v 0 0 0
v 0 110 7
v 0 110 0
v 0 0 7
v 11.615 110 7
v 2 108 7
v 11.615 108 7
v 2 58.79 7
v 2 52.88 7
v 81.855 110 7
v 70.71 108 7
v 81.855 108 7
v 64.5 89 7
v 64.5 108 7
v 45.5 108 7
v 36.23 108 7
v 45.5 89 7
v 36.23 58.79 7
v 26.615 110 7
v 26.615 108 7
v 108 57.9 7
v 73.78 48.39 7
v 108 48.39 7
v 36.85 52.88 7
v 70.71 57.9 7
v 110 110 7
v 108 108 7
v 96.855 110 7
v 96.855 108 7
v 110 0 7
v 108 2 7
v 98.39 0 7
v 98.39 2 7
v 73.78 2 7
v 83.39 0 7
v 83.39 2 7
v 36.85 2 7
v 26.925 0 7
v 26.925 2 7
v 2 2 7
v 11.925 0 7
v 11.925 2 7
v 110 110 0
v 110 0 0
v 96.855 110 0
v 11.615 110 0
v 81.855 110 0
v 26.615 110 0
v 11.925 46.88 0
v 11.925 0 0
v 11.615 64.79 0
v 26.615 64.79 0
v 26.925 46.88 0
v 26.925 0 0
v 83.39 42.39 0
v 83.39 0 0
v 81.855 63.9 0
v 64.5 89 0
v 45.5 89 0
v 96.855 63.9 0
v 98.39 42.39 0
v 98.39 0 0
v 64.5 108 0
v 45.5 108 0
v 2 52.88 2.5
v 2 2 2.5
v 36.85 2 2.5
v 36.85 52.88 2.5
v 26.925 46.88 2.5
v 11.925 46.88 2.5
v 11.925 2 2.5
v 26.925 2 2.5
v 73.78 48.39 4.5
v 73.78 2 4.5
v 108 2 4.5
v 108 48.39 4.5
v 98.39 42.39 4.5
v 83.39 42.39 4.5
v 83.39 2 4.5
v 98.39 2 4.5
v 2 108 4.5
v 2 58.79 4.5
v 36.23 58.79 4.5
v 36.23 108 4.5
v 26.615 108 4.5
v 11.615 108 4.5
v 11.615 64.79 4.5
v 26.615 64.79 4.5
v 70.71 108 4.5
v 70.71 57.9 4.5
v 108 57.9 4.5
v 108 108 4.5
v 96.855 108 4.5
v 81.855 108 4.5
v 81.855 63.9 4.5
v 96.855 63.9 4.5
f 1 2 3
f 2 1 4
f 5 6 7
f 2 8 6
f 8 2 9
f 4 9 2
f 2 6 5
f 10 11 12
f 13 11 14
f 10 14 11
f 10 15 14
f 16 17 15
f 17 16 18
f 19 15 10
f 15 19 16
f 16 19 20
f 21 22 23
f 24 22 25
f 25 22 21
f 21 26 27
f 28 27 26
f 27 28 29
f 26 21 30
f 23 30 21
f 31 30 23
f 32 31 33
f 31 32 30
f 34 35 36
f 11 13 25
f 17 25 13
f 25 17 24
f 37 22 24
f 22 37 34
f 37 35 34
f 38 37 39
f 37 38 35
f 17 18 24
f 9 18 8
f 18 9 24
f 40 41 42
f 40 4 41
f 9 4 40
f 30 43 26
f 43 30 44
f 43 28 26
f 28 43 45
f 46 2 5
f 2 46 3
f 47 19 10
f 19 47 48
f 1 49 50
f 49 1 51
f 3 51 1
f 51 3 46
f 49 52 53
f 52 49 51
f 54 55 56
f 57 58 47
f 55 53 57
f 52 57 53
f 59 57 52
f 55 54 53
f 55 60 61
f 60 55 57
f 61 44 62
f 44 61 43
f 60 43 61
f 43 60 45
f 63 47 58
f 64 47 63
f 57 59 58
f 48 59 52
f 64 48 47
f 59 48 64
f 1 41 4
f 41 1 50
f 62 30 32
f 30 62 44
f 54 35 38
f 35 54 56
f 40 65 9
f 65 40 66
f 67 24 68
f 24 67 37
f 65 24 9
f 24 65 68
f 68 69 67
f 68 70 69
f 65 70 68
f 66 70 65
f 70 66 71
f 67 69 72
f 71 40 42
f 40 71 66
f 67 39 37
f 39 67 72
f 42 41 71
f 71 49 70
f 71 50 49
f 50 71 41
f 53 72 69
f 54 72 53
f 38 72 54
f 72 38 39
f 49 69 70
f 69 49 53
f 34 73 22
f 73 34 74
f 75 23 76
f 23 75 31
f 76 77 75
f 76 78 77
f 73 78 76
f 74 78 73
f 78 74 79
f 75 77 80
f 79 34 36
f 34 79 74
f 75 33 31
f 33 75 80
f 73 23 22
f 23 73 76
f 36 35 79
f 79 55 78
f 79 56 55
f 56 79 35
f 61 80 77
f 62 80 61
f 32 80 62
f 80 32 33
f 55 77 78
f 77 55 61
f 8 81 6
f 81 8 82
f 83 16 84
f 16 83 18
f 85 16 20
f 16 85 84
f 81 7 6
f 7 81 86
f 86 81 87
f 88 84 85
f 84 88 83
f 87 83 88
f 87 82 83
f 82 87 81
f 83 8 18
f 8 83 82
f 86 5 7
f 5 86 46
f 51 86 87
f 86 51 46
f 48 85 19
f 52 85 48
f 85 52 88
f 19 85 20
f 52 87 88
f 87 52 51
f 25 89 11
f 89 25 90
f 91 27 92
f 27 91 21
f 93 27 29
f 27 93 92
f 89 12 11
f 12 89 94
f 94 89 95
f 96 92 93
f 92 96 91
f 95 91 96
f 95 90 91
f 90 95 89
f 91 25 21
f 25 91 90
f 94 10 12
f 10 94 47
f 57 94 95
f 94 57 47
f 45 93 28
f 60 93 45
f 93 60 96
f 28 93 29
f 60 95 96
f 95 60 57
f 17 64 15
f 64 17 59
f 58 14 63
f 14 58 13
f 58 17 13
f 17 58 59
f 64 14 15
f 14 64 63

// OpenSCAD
length = 110;
width = 110;
height = 7;

//Based on magnet size:
magnetBaseInnerDiameter = 19;
magnetHeight = 4.0;

//        inox bodyguards (2) 49.88 x 33.85
//		merciless overseer 45.39 x 33.22
//		the sightless eye 48.21 x 33.23
//		the gloom 49.10 x 36.29

token1Width = 49.88 + 1;
token1Length = 33.85 + 1;
token1Height = 4 + .5;
token1SquareLipWidthRemainder = token1Length - 15;
token1SquareLipLengthRemainder = 4;

token3Width = 45.39 + 1;
token3Length = 33.22 + 1;
token3Height = 2 + .5;
token3SquareLipWidthRemainder = token3Length - 15;
token3SquareLipLengthRemainder = 4;

token4Width = 48.21 + 1;
token4Length = 33.23 + 1;
token4Height = 2 + .5;
token4SquareLipWidthRemainder = token4Length - 15;
token4SquareLipLengthRemainder = 4;

token6Width = 49.10  + 1;
token6Length = 36.29 + 1;
token6Height = 2 + .5;
token6SquareLipWidthRemainder = token6Length - 15;
token6SquareLipLengthRemainder = 4;

spaceBetweenCircles = 2;
wallThickness = spaceBetweenCircles;



difference(){
    cube([length, width, height]);


//----------------------------------
translate(
        [
            wallThickness,
            wallThickness,
            height - token1Height
        ])
        cube([token1Length,token1Width, token1Height]);
    translate([
        wallThickness + token1SquareLipWidthRemainder/2,
        0,
        0])
        cube([
            token1Length - token1SquareLipWidthRemainder,
            token1Width - token1SquareLipLengthRemainder,
            height]);

            
translate(
        [
            length - (wallThickness + token3Length),
            wallThickness,
            height - token3Height
        ])
        cube([token3Length,token3Width, token3Height]);
    translate([
        length - (wallThickness + token3Length) + token3SquareLipWidthRemainder/2,
        0,
        0])
        cube([
            token3Length - token3SquareLipWidthRemainder,
            token3Width - token3SquareLipLengthRemainder,
            height]);

            
//---------------------------------------------------------------------
    
    translate(
        [
            wallThickness,
            width - (wallThickness + token4Width),
            height - token4Height
        ])
        cube([token4Length,token4Width, token4Height]);
    translate([
        wallThickness + token4SquareLipWidthRemainder/2,
        width - (token4Width - token4SquareLipLengthRemainder),
        0])
        cube([
            token4Length - token4SquareLipWidthRemainder,
            token4Width - token4SquareLipLengthRemainder,
            height]);
            
    

    translate(
        [
            length - (wallThickness + token6Length),
            width - (wallThickness + token6Width),
            height - token6Height
        ])
        cube([token6Length,token6Width, token6Height]);
    translate([
        length - (wallThickness + token6Length) + token6SquareLipWidthRemainder/2,
        width - (token6Width - token6SquareLipLengthRemainder),
        0])
        cube([
            token6Length - token6SquareLipWidthRemainder,
            token6Width - token6SquareLipLengthRemainder,
            height]);       

//----------------------------------------
   
    translate([length/2 - magnetBaseInnerDiameter/2, length - (wallThickness + magnetBaseInnerDiameter), 0])
        cube([magnetBaseInnerDiameter, magnetBaseInnerDiameter, height]);
        

}
